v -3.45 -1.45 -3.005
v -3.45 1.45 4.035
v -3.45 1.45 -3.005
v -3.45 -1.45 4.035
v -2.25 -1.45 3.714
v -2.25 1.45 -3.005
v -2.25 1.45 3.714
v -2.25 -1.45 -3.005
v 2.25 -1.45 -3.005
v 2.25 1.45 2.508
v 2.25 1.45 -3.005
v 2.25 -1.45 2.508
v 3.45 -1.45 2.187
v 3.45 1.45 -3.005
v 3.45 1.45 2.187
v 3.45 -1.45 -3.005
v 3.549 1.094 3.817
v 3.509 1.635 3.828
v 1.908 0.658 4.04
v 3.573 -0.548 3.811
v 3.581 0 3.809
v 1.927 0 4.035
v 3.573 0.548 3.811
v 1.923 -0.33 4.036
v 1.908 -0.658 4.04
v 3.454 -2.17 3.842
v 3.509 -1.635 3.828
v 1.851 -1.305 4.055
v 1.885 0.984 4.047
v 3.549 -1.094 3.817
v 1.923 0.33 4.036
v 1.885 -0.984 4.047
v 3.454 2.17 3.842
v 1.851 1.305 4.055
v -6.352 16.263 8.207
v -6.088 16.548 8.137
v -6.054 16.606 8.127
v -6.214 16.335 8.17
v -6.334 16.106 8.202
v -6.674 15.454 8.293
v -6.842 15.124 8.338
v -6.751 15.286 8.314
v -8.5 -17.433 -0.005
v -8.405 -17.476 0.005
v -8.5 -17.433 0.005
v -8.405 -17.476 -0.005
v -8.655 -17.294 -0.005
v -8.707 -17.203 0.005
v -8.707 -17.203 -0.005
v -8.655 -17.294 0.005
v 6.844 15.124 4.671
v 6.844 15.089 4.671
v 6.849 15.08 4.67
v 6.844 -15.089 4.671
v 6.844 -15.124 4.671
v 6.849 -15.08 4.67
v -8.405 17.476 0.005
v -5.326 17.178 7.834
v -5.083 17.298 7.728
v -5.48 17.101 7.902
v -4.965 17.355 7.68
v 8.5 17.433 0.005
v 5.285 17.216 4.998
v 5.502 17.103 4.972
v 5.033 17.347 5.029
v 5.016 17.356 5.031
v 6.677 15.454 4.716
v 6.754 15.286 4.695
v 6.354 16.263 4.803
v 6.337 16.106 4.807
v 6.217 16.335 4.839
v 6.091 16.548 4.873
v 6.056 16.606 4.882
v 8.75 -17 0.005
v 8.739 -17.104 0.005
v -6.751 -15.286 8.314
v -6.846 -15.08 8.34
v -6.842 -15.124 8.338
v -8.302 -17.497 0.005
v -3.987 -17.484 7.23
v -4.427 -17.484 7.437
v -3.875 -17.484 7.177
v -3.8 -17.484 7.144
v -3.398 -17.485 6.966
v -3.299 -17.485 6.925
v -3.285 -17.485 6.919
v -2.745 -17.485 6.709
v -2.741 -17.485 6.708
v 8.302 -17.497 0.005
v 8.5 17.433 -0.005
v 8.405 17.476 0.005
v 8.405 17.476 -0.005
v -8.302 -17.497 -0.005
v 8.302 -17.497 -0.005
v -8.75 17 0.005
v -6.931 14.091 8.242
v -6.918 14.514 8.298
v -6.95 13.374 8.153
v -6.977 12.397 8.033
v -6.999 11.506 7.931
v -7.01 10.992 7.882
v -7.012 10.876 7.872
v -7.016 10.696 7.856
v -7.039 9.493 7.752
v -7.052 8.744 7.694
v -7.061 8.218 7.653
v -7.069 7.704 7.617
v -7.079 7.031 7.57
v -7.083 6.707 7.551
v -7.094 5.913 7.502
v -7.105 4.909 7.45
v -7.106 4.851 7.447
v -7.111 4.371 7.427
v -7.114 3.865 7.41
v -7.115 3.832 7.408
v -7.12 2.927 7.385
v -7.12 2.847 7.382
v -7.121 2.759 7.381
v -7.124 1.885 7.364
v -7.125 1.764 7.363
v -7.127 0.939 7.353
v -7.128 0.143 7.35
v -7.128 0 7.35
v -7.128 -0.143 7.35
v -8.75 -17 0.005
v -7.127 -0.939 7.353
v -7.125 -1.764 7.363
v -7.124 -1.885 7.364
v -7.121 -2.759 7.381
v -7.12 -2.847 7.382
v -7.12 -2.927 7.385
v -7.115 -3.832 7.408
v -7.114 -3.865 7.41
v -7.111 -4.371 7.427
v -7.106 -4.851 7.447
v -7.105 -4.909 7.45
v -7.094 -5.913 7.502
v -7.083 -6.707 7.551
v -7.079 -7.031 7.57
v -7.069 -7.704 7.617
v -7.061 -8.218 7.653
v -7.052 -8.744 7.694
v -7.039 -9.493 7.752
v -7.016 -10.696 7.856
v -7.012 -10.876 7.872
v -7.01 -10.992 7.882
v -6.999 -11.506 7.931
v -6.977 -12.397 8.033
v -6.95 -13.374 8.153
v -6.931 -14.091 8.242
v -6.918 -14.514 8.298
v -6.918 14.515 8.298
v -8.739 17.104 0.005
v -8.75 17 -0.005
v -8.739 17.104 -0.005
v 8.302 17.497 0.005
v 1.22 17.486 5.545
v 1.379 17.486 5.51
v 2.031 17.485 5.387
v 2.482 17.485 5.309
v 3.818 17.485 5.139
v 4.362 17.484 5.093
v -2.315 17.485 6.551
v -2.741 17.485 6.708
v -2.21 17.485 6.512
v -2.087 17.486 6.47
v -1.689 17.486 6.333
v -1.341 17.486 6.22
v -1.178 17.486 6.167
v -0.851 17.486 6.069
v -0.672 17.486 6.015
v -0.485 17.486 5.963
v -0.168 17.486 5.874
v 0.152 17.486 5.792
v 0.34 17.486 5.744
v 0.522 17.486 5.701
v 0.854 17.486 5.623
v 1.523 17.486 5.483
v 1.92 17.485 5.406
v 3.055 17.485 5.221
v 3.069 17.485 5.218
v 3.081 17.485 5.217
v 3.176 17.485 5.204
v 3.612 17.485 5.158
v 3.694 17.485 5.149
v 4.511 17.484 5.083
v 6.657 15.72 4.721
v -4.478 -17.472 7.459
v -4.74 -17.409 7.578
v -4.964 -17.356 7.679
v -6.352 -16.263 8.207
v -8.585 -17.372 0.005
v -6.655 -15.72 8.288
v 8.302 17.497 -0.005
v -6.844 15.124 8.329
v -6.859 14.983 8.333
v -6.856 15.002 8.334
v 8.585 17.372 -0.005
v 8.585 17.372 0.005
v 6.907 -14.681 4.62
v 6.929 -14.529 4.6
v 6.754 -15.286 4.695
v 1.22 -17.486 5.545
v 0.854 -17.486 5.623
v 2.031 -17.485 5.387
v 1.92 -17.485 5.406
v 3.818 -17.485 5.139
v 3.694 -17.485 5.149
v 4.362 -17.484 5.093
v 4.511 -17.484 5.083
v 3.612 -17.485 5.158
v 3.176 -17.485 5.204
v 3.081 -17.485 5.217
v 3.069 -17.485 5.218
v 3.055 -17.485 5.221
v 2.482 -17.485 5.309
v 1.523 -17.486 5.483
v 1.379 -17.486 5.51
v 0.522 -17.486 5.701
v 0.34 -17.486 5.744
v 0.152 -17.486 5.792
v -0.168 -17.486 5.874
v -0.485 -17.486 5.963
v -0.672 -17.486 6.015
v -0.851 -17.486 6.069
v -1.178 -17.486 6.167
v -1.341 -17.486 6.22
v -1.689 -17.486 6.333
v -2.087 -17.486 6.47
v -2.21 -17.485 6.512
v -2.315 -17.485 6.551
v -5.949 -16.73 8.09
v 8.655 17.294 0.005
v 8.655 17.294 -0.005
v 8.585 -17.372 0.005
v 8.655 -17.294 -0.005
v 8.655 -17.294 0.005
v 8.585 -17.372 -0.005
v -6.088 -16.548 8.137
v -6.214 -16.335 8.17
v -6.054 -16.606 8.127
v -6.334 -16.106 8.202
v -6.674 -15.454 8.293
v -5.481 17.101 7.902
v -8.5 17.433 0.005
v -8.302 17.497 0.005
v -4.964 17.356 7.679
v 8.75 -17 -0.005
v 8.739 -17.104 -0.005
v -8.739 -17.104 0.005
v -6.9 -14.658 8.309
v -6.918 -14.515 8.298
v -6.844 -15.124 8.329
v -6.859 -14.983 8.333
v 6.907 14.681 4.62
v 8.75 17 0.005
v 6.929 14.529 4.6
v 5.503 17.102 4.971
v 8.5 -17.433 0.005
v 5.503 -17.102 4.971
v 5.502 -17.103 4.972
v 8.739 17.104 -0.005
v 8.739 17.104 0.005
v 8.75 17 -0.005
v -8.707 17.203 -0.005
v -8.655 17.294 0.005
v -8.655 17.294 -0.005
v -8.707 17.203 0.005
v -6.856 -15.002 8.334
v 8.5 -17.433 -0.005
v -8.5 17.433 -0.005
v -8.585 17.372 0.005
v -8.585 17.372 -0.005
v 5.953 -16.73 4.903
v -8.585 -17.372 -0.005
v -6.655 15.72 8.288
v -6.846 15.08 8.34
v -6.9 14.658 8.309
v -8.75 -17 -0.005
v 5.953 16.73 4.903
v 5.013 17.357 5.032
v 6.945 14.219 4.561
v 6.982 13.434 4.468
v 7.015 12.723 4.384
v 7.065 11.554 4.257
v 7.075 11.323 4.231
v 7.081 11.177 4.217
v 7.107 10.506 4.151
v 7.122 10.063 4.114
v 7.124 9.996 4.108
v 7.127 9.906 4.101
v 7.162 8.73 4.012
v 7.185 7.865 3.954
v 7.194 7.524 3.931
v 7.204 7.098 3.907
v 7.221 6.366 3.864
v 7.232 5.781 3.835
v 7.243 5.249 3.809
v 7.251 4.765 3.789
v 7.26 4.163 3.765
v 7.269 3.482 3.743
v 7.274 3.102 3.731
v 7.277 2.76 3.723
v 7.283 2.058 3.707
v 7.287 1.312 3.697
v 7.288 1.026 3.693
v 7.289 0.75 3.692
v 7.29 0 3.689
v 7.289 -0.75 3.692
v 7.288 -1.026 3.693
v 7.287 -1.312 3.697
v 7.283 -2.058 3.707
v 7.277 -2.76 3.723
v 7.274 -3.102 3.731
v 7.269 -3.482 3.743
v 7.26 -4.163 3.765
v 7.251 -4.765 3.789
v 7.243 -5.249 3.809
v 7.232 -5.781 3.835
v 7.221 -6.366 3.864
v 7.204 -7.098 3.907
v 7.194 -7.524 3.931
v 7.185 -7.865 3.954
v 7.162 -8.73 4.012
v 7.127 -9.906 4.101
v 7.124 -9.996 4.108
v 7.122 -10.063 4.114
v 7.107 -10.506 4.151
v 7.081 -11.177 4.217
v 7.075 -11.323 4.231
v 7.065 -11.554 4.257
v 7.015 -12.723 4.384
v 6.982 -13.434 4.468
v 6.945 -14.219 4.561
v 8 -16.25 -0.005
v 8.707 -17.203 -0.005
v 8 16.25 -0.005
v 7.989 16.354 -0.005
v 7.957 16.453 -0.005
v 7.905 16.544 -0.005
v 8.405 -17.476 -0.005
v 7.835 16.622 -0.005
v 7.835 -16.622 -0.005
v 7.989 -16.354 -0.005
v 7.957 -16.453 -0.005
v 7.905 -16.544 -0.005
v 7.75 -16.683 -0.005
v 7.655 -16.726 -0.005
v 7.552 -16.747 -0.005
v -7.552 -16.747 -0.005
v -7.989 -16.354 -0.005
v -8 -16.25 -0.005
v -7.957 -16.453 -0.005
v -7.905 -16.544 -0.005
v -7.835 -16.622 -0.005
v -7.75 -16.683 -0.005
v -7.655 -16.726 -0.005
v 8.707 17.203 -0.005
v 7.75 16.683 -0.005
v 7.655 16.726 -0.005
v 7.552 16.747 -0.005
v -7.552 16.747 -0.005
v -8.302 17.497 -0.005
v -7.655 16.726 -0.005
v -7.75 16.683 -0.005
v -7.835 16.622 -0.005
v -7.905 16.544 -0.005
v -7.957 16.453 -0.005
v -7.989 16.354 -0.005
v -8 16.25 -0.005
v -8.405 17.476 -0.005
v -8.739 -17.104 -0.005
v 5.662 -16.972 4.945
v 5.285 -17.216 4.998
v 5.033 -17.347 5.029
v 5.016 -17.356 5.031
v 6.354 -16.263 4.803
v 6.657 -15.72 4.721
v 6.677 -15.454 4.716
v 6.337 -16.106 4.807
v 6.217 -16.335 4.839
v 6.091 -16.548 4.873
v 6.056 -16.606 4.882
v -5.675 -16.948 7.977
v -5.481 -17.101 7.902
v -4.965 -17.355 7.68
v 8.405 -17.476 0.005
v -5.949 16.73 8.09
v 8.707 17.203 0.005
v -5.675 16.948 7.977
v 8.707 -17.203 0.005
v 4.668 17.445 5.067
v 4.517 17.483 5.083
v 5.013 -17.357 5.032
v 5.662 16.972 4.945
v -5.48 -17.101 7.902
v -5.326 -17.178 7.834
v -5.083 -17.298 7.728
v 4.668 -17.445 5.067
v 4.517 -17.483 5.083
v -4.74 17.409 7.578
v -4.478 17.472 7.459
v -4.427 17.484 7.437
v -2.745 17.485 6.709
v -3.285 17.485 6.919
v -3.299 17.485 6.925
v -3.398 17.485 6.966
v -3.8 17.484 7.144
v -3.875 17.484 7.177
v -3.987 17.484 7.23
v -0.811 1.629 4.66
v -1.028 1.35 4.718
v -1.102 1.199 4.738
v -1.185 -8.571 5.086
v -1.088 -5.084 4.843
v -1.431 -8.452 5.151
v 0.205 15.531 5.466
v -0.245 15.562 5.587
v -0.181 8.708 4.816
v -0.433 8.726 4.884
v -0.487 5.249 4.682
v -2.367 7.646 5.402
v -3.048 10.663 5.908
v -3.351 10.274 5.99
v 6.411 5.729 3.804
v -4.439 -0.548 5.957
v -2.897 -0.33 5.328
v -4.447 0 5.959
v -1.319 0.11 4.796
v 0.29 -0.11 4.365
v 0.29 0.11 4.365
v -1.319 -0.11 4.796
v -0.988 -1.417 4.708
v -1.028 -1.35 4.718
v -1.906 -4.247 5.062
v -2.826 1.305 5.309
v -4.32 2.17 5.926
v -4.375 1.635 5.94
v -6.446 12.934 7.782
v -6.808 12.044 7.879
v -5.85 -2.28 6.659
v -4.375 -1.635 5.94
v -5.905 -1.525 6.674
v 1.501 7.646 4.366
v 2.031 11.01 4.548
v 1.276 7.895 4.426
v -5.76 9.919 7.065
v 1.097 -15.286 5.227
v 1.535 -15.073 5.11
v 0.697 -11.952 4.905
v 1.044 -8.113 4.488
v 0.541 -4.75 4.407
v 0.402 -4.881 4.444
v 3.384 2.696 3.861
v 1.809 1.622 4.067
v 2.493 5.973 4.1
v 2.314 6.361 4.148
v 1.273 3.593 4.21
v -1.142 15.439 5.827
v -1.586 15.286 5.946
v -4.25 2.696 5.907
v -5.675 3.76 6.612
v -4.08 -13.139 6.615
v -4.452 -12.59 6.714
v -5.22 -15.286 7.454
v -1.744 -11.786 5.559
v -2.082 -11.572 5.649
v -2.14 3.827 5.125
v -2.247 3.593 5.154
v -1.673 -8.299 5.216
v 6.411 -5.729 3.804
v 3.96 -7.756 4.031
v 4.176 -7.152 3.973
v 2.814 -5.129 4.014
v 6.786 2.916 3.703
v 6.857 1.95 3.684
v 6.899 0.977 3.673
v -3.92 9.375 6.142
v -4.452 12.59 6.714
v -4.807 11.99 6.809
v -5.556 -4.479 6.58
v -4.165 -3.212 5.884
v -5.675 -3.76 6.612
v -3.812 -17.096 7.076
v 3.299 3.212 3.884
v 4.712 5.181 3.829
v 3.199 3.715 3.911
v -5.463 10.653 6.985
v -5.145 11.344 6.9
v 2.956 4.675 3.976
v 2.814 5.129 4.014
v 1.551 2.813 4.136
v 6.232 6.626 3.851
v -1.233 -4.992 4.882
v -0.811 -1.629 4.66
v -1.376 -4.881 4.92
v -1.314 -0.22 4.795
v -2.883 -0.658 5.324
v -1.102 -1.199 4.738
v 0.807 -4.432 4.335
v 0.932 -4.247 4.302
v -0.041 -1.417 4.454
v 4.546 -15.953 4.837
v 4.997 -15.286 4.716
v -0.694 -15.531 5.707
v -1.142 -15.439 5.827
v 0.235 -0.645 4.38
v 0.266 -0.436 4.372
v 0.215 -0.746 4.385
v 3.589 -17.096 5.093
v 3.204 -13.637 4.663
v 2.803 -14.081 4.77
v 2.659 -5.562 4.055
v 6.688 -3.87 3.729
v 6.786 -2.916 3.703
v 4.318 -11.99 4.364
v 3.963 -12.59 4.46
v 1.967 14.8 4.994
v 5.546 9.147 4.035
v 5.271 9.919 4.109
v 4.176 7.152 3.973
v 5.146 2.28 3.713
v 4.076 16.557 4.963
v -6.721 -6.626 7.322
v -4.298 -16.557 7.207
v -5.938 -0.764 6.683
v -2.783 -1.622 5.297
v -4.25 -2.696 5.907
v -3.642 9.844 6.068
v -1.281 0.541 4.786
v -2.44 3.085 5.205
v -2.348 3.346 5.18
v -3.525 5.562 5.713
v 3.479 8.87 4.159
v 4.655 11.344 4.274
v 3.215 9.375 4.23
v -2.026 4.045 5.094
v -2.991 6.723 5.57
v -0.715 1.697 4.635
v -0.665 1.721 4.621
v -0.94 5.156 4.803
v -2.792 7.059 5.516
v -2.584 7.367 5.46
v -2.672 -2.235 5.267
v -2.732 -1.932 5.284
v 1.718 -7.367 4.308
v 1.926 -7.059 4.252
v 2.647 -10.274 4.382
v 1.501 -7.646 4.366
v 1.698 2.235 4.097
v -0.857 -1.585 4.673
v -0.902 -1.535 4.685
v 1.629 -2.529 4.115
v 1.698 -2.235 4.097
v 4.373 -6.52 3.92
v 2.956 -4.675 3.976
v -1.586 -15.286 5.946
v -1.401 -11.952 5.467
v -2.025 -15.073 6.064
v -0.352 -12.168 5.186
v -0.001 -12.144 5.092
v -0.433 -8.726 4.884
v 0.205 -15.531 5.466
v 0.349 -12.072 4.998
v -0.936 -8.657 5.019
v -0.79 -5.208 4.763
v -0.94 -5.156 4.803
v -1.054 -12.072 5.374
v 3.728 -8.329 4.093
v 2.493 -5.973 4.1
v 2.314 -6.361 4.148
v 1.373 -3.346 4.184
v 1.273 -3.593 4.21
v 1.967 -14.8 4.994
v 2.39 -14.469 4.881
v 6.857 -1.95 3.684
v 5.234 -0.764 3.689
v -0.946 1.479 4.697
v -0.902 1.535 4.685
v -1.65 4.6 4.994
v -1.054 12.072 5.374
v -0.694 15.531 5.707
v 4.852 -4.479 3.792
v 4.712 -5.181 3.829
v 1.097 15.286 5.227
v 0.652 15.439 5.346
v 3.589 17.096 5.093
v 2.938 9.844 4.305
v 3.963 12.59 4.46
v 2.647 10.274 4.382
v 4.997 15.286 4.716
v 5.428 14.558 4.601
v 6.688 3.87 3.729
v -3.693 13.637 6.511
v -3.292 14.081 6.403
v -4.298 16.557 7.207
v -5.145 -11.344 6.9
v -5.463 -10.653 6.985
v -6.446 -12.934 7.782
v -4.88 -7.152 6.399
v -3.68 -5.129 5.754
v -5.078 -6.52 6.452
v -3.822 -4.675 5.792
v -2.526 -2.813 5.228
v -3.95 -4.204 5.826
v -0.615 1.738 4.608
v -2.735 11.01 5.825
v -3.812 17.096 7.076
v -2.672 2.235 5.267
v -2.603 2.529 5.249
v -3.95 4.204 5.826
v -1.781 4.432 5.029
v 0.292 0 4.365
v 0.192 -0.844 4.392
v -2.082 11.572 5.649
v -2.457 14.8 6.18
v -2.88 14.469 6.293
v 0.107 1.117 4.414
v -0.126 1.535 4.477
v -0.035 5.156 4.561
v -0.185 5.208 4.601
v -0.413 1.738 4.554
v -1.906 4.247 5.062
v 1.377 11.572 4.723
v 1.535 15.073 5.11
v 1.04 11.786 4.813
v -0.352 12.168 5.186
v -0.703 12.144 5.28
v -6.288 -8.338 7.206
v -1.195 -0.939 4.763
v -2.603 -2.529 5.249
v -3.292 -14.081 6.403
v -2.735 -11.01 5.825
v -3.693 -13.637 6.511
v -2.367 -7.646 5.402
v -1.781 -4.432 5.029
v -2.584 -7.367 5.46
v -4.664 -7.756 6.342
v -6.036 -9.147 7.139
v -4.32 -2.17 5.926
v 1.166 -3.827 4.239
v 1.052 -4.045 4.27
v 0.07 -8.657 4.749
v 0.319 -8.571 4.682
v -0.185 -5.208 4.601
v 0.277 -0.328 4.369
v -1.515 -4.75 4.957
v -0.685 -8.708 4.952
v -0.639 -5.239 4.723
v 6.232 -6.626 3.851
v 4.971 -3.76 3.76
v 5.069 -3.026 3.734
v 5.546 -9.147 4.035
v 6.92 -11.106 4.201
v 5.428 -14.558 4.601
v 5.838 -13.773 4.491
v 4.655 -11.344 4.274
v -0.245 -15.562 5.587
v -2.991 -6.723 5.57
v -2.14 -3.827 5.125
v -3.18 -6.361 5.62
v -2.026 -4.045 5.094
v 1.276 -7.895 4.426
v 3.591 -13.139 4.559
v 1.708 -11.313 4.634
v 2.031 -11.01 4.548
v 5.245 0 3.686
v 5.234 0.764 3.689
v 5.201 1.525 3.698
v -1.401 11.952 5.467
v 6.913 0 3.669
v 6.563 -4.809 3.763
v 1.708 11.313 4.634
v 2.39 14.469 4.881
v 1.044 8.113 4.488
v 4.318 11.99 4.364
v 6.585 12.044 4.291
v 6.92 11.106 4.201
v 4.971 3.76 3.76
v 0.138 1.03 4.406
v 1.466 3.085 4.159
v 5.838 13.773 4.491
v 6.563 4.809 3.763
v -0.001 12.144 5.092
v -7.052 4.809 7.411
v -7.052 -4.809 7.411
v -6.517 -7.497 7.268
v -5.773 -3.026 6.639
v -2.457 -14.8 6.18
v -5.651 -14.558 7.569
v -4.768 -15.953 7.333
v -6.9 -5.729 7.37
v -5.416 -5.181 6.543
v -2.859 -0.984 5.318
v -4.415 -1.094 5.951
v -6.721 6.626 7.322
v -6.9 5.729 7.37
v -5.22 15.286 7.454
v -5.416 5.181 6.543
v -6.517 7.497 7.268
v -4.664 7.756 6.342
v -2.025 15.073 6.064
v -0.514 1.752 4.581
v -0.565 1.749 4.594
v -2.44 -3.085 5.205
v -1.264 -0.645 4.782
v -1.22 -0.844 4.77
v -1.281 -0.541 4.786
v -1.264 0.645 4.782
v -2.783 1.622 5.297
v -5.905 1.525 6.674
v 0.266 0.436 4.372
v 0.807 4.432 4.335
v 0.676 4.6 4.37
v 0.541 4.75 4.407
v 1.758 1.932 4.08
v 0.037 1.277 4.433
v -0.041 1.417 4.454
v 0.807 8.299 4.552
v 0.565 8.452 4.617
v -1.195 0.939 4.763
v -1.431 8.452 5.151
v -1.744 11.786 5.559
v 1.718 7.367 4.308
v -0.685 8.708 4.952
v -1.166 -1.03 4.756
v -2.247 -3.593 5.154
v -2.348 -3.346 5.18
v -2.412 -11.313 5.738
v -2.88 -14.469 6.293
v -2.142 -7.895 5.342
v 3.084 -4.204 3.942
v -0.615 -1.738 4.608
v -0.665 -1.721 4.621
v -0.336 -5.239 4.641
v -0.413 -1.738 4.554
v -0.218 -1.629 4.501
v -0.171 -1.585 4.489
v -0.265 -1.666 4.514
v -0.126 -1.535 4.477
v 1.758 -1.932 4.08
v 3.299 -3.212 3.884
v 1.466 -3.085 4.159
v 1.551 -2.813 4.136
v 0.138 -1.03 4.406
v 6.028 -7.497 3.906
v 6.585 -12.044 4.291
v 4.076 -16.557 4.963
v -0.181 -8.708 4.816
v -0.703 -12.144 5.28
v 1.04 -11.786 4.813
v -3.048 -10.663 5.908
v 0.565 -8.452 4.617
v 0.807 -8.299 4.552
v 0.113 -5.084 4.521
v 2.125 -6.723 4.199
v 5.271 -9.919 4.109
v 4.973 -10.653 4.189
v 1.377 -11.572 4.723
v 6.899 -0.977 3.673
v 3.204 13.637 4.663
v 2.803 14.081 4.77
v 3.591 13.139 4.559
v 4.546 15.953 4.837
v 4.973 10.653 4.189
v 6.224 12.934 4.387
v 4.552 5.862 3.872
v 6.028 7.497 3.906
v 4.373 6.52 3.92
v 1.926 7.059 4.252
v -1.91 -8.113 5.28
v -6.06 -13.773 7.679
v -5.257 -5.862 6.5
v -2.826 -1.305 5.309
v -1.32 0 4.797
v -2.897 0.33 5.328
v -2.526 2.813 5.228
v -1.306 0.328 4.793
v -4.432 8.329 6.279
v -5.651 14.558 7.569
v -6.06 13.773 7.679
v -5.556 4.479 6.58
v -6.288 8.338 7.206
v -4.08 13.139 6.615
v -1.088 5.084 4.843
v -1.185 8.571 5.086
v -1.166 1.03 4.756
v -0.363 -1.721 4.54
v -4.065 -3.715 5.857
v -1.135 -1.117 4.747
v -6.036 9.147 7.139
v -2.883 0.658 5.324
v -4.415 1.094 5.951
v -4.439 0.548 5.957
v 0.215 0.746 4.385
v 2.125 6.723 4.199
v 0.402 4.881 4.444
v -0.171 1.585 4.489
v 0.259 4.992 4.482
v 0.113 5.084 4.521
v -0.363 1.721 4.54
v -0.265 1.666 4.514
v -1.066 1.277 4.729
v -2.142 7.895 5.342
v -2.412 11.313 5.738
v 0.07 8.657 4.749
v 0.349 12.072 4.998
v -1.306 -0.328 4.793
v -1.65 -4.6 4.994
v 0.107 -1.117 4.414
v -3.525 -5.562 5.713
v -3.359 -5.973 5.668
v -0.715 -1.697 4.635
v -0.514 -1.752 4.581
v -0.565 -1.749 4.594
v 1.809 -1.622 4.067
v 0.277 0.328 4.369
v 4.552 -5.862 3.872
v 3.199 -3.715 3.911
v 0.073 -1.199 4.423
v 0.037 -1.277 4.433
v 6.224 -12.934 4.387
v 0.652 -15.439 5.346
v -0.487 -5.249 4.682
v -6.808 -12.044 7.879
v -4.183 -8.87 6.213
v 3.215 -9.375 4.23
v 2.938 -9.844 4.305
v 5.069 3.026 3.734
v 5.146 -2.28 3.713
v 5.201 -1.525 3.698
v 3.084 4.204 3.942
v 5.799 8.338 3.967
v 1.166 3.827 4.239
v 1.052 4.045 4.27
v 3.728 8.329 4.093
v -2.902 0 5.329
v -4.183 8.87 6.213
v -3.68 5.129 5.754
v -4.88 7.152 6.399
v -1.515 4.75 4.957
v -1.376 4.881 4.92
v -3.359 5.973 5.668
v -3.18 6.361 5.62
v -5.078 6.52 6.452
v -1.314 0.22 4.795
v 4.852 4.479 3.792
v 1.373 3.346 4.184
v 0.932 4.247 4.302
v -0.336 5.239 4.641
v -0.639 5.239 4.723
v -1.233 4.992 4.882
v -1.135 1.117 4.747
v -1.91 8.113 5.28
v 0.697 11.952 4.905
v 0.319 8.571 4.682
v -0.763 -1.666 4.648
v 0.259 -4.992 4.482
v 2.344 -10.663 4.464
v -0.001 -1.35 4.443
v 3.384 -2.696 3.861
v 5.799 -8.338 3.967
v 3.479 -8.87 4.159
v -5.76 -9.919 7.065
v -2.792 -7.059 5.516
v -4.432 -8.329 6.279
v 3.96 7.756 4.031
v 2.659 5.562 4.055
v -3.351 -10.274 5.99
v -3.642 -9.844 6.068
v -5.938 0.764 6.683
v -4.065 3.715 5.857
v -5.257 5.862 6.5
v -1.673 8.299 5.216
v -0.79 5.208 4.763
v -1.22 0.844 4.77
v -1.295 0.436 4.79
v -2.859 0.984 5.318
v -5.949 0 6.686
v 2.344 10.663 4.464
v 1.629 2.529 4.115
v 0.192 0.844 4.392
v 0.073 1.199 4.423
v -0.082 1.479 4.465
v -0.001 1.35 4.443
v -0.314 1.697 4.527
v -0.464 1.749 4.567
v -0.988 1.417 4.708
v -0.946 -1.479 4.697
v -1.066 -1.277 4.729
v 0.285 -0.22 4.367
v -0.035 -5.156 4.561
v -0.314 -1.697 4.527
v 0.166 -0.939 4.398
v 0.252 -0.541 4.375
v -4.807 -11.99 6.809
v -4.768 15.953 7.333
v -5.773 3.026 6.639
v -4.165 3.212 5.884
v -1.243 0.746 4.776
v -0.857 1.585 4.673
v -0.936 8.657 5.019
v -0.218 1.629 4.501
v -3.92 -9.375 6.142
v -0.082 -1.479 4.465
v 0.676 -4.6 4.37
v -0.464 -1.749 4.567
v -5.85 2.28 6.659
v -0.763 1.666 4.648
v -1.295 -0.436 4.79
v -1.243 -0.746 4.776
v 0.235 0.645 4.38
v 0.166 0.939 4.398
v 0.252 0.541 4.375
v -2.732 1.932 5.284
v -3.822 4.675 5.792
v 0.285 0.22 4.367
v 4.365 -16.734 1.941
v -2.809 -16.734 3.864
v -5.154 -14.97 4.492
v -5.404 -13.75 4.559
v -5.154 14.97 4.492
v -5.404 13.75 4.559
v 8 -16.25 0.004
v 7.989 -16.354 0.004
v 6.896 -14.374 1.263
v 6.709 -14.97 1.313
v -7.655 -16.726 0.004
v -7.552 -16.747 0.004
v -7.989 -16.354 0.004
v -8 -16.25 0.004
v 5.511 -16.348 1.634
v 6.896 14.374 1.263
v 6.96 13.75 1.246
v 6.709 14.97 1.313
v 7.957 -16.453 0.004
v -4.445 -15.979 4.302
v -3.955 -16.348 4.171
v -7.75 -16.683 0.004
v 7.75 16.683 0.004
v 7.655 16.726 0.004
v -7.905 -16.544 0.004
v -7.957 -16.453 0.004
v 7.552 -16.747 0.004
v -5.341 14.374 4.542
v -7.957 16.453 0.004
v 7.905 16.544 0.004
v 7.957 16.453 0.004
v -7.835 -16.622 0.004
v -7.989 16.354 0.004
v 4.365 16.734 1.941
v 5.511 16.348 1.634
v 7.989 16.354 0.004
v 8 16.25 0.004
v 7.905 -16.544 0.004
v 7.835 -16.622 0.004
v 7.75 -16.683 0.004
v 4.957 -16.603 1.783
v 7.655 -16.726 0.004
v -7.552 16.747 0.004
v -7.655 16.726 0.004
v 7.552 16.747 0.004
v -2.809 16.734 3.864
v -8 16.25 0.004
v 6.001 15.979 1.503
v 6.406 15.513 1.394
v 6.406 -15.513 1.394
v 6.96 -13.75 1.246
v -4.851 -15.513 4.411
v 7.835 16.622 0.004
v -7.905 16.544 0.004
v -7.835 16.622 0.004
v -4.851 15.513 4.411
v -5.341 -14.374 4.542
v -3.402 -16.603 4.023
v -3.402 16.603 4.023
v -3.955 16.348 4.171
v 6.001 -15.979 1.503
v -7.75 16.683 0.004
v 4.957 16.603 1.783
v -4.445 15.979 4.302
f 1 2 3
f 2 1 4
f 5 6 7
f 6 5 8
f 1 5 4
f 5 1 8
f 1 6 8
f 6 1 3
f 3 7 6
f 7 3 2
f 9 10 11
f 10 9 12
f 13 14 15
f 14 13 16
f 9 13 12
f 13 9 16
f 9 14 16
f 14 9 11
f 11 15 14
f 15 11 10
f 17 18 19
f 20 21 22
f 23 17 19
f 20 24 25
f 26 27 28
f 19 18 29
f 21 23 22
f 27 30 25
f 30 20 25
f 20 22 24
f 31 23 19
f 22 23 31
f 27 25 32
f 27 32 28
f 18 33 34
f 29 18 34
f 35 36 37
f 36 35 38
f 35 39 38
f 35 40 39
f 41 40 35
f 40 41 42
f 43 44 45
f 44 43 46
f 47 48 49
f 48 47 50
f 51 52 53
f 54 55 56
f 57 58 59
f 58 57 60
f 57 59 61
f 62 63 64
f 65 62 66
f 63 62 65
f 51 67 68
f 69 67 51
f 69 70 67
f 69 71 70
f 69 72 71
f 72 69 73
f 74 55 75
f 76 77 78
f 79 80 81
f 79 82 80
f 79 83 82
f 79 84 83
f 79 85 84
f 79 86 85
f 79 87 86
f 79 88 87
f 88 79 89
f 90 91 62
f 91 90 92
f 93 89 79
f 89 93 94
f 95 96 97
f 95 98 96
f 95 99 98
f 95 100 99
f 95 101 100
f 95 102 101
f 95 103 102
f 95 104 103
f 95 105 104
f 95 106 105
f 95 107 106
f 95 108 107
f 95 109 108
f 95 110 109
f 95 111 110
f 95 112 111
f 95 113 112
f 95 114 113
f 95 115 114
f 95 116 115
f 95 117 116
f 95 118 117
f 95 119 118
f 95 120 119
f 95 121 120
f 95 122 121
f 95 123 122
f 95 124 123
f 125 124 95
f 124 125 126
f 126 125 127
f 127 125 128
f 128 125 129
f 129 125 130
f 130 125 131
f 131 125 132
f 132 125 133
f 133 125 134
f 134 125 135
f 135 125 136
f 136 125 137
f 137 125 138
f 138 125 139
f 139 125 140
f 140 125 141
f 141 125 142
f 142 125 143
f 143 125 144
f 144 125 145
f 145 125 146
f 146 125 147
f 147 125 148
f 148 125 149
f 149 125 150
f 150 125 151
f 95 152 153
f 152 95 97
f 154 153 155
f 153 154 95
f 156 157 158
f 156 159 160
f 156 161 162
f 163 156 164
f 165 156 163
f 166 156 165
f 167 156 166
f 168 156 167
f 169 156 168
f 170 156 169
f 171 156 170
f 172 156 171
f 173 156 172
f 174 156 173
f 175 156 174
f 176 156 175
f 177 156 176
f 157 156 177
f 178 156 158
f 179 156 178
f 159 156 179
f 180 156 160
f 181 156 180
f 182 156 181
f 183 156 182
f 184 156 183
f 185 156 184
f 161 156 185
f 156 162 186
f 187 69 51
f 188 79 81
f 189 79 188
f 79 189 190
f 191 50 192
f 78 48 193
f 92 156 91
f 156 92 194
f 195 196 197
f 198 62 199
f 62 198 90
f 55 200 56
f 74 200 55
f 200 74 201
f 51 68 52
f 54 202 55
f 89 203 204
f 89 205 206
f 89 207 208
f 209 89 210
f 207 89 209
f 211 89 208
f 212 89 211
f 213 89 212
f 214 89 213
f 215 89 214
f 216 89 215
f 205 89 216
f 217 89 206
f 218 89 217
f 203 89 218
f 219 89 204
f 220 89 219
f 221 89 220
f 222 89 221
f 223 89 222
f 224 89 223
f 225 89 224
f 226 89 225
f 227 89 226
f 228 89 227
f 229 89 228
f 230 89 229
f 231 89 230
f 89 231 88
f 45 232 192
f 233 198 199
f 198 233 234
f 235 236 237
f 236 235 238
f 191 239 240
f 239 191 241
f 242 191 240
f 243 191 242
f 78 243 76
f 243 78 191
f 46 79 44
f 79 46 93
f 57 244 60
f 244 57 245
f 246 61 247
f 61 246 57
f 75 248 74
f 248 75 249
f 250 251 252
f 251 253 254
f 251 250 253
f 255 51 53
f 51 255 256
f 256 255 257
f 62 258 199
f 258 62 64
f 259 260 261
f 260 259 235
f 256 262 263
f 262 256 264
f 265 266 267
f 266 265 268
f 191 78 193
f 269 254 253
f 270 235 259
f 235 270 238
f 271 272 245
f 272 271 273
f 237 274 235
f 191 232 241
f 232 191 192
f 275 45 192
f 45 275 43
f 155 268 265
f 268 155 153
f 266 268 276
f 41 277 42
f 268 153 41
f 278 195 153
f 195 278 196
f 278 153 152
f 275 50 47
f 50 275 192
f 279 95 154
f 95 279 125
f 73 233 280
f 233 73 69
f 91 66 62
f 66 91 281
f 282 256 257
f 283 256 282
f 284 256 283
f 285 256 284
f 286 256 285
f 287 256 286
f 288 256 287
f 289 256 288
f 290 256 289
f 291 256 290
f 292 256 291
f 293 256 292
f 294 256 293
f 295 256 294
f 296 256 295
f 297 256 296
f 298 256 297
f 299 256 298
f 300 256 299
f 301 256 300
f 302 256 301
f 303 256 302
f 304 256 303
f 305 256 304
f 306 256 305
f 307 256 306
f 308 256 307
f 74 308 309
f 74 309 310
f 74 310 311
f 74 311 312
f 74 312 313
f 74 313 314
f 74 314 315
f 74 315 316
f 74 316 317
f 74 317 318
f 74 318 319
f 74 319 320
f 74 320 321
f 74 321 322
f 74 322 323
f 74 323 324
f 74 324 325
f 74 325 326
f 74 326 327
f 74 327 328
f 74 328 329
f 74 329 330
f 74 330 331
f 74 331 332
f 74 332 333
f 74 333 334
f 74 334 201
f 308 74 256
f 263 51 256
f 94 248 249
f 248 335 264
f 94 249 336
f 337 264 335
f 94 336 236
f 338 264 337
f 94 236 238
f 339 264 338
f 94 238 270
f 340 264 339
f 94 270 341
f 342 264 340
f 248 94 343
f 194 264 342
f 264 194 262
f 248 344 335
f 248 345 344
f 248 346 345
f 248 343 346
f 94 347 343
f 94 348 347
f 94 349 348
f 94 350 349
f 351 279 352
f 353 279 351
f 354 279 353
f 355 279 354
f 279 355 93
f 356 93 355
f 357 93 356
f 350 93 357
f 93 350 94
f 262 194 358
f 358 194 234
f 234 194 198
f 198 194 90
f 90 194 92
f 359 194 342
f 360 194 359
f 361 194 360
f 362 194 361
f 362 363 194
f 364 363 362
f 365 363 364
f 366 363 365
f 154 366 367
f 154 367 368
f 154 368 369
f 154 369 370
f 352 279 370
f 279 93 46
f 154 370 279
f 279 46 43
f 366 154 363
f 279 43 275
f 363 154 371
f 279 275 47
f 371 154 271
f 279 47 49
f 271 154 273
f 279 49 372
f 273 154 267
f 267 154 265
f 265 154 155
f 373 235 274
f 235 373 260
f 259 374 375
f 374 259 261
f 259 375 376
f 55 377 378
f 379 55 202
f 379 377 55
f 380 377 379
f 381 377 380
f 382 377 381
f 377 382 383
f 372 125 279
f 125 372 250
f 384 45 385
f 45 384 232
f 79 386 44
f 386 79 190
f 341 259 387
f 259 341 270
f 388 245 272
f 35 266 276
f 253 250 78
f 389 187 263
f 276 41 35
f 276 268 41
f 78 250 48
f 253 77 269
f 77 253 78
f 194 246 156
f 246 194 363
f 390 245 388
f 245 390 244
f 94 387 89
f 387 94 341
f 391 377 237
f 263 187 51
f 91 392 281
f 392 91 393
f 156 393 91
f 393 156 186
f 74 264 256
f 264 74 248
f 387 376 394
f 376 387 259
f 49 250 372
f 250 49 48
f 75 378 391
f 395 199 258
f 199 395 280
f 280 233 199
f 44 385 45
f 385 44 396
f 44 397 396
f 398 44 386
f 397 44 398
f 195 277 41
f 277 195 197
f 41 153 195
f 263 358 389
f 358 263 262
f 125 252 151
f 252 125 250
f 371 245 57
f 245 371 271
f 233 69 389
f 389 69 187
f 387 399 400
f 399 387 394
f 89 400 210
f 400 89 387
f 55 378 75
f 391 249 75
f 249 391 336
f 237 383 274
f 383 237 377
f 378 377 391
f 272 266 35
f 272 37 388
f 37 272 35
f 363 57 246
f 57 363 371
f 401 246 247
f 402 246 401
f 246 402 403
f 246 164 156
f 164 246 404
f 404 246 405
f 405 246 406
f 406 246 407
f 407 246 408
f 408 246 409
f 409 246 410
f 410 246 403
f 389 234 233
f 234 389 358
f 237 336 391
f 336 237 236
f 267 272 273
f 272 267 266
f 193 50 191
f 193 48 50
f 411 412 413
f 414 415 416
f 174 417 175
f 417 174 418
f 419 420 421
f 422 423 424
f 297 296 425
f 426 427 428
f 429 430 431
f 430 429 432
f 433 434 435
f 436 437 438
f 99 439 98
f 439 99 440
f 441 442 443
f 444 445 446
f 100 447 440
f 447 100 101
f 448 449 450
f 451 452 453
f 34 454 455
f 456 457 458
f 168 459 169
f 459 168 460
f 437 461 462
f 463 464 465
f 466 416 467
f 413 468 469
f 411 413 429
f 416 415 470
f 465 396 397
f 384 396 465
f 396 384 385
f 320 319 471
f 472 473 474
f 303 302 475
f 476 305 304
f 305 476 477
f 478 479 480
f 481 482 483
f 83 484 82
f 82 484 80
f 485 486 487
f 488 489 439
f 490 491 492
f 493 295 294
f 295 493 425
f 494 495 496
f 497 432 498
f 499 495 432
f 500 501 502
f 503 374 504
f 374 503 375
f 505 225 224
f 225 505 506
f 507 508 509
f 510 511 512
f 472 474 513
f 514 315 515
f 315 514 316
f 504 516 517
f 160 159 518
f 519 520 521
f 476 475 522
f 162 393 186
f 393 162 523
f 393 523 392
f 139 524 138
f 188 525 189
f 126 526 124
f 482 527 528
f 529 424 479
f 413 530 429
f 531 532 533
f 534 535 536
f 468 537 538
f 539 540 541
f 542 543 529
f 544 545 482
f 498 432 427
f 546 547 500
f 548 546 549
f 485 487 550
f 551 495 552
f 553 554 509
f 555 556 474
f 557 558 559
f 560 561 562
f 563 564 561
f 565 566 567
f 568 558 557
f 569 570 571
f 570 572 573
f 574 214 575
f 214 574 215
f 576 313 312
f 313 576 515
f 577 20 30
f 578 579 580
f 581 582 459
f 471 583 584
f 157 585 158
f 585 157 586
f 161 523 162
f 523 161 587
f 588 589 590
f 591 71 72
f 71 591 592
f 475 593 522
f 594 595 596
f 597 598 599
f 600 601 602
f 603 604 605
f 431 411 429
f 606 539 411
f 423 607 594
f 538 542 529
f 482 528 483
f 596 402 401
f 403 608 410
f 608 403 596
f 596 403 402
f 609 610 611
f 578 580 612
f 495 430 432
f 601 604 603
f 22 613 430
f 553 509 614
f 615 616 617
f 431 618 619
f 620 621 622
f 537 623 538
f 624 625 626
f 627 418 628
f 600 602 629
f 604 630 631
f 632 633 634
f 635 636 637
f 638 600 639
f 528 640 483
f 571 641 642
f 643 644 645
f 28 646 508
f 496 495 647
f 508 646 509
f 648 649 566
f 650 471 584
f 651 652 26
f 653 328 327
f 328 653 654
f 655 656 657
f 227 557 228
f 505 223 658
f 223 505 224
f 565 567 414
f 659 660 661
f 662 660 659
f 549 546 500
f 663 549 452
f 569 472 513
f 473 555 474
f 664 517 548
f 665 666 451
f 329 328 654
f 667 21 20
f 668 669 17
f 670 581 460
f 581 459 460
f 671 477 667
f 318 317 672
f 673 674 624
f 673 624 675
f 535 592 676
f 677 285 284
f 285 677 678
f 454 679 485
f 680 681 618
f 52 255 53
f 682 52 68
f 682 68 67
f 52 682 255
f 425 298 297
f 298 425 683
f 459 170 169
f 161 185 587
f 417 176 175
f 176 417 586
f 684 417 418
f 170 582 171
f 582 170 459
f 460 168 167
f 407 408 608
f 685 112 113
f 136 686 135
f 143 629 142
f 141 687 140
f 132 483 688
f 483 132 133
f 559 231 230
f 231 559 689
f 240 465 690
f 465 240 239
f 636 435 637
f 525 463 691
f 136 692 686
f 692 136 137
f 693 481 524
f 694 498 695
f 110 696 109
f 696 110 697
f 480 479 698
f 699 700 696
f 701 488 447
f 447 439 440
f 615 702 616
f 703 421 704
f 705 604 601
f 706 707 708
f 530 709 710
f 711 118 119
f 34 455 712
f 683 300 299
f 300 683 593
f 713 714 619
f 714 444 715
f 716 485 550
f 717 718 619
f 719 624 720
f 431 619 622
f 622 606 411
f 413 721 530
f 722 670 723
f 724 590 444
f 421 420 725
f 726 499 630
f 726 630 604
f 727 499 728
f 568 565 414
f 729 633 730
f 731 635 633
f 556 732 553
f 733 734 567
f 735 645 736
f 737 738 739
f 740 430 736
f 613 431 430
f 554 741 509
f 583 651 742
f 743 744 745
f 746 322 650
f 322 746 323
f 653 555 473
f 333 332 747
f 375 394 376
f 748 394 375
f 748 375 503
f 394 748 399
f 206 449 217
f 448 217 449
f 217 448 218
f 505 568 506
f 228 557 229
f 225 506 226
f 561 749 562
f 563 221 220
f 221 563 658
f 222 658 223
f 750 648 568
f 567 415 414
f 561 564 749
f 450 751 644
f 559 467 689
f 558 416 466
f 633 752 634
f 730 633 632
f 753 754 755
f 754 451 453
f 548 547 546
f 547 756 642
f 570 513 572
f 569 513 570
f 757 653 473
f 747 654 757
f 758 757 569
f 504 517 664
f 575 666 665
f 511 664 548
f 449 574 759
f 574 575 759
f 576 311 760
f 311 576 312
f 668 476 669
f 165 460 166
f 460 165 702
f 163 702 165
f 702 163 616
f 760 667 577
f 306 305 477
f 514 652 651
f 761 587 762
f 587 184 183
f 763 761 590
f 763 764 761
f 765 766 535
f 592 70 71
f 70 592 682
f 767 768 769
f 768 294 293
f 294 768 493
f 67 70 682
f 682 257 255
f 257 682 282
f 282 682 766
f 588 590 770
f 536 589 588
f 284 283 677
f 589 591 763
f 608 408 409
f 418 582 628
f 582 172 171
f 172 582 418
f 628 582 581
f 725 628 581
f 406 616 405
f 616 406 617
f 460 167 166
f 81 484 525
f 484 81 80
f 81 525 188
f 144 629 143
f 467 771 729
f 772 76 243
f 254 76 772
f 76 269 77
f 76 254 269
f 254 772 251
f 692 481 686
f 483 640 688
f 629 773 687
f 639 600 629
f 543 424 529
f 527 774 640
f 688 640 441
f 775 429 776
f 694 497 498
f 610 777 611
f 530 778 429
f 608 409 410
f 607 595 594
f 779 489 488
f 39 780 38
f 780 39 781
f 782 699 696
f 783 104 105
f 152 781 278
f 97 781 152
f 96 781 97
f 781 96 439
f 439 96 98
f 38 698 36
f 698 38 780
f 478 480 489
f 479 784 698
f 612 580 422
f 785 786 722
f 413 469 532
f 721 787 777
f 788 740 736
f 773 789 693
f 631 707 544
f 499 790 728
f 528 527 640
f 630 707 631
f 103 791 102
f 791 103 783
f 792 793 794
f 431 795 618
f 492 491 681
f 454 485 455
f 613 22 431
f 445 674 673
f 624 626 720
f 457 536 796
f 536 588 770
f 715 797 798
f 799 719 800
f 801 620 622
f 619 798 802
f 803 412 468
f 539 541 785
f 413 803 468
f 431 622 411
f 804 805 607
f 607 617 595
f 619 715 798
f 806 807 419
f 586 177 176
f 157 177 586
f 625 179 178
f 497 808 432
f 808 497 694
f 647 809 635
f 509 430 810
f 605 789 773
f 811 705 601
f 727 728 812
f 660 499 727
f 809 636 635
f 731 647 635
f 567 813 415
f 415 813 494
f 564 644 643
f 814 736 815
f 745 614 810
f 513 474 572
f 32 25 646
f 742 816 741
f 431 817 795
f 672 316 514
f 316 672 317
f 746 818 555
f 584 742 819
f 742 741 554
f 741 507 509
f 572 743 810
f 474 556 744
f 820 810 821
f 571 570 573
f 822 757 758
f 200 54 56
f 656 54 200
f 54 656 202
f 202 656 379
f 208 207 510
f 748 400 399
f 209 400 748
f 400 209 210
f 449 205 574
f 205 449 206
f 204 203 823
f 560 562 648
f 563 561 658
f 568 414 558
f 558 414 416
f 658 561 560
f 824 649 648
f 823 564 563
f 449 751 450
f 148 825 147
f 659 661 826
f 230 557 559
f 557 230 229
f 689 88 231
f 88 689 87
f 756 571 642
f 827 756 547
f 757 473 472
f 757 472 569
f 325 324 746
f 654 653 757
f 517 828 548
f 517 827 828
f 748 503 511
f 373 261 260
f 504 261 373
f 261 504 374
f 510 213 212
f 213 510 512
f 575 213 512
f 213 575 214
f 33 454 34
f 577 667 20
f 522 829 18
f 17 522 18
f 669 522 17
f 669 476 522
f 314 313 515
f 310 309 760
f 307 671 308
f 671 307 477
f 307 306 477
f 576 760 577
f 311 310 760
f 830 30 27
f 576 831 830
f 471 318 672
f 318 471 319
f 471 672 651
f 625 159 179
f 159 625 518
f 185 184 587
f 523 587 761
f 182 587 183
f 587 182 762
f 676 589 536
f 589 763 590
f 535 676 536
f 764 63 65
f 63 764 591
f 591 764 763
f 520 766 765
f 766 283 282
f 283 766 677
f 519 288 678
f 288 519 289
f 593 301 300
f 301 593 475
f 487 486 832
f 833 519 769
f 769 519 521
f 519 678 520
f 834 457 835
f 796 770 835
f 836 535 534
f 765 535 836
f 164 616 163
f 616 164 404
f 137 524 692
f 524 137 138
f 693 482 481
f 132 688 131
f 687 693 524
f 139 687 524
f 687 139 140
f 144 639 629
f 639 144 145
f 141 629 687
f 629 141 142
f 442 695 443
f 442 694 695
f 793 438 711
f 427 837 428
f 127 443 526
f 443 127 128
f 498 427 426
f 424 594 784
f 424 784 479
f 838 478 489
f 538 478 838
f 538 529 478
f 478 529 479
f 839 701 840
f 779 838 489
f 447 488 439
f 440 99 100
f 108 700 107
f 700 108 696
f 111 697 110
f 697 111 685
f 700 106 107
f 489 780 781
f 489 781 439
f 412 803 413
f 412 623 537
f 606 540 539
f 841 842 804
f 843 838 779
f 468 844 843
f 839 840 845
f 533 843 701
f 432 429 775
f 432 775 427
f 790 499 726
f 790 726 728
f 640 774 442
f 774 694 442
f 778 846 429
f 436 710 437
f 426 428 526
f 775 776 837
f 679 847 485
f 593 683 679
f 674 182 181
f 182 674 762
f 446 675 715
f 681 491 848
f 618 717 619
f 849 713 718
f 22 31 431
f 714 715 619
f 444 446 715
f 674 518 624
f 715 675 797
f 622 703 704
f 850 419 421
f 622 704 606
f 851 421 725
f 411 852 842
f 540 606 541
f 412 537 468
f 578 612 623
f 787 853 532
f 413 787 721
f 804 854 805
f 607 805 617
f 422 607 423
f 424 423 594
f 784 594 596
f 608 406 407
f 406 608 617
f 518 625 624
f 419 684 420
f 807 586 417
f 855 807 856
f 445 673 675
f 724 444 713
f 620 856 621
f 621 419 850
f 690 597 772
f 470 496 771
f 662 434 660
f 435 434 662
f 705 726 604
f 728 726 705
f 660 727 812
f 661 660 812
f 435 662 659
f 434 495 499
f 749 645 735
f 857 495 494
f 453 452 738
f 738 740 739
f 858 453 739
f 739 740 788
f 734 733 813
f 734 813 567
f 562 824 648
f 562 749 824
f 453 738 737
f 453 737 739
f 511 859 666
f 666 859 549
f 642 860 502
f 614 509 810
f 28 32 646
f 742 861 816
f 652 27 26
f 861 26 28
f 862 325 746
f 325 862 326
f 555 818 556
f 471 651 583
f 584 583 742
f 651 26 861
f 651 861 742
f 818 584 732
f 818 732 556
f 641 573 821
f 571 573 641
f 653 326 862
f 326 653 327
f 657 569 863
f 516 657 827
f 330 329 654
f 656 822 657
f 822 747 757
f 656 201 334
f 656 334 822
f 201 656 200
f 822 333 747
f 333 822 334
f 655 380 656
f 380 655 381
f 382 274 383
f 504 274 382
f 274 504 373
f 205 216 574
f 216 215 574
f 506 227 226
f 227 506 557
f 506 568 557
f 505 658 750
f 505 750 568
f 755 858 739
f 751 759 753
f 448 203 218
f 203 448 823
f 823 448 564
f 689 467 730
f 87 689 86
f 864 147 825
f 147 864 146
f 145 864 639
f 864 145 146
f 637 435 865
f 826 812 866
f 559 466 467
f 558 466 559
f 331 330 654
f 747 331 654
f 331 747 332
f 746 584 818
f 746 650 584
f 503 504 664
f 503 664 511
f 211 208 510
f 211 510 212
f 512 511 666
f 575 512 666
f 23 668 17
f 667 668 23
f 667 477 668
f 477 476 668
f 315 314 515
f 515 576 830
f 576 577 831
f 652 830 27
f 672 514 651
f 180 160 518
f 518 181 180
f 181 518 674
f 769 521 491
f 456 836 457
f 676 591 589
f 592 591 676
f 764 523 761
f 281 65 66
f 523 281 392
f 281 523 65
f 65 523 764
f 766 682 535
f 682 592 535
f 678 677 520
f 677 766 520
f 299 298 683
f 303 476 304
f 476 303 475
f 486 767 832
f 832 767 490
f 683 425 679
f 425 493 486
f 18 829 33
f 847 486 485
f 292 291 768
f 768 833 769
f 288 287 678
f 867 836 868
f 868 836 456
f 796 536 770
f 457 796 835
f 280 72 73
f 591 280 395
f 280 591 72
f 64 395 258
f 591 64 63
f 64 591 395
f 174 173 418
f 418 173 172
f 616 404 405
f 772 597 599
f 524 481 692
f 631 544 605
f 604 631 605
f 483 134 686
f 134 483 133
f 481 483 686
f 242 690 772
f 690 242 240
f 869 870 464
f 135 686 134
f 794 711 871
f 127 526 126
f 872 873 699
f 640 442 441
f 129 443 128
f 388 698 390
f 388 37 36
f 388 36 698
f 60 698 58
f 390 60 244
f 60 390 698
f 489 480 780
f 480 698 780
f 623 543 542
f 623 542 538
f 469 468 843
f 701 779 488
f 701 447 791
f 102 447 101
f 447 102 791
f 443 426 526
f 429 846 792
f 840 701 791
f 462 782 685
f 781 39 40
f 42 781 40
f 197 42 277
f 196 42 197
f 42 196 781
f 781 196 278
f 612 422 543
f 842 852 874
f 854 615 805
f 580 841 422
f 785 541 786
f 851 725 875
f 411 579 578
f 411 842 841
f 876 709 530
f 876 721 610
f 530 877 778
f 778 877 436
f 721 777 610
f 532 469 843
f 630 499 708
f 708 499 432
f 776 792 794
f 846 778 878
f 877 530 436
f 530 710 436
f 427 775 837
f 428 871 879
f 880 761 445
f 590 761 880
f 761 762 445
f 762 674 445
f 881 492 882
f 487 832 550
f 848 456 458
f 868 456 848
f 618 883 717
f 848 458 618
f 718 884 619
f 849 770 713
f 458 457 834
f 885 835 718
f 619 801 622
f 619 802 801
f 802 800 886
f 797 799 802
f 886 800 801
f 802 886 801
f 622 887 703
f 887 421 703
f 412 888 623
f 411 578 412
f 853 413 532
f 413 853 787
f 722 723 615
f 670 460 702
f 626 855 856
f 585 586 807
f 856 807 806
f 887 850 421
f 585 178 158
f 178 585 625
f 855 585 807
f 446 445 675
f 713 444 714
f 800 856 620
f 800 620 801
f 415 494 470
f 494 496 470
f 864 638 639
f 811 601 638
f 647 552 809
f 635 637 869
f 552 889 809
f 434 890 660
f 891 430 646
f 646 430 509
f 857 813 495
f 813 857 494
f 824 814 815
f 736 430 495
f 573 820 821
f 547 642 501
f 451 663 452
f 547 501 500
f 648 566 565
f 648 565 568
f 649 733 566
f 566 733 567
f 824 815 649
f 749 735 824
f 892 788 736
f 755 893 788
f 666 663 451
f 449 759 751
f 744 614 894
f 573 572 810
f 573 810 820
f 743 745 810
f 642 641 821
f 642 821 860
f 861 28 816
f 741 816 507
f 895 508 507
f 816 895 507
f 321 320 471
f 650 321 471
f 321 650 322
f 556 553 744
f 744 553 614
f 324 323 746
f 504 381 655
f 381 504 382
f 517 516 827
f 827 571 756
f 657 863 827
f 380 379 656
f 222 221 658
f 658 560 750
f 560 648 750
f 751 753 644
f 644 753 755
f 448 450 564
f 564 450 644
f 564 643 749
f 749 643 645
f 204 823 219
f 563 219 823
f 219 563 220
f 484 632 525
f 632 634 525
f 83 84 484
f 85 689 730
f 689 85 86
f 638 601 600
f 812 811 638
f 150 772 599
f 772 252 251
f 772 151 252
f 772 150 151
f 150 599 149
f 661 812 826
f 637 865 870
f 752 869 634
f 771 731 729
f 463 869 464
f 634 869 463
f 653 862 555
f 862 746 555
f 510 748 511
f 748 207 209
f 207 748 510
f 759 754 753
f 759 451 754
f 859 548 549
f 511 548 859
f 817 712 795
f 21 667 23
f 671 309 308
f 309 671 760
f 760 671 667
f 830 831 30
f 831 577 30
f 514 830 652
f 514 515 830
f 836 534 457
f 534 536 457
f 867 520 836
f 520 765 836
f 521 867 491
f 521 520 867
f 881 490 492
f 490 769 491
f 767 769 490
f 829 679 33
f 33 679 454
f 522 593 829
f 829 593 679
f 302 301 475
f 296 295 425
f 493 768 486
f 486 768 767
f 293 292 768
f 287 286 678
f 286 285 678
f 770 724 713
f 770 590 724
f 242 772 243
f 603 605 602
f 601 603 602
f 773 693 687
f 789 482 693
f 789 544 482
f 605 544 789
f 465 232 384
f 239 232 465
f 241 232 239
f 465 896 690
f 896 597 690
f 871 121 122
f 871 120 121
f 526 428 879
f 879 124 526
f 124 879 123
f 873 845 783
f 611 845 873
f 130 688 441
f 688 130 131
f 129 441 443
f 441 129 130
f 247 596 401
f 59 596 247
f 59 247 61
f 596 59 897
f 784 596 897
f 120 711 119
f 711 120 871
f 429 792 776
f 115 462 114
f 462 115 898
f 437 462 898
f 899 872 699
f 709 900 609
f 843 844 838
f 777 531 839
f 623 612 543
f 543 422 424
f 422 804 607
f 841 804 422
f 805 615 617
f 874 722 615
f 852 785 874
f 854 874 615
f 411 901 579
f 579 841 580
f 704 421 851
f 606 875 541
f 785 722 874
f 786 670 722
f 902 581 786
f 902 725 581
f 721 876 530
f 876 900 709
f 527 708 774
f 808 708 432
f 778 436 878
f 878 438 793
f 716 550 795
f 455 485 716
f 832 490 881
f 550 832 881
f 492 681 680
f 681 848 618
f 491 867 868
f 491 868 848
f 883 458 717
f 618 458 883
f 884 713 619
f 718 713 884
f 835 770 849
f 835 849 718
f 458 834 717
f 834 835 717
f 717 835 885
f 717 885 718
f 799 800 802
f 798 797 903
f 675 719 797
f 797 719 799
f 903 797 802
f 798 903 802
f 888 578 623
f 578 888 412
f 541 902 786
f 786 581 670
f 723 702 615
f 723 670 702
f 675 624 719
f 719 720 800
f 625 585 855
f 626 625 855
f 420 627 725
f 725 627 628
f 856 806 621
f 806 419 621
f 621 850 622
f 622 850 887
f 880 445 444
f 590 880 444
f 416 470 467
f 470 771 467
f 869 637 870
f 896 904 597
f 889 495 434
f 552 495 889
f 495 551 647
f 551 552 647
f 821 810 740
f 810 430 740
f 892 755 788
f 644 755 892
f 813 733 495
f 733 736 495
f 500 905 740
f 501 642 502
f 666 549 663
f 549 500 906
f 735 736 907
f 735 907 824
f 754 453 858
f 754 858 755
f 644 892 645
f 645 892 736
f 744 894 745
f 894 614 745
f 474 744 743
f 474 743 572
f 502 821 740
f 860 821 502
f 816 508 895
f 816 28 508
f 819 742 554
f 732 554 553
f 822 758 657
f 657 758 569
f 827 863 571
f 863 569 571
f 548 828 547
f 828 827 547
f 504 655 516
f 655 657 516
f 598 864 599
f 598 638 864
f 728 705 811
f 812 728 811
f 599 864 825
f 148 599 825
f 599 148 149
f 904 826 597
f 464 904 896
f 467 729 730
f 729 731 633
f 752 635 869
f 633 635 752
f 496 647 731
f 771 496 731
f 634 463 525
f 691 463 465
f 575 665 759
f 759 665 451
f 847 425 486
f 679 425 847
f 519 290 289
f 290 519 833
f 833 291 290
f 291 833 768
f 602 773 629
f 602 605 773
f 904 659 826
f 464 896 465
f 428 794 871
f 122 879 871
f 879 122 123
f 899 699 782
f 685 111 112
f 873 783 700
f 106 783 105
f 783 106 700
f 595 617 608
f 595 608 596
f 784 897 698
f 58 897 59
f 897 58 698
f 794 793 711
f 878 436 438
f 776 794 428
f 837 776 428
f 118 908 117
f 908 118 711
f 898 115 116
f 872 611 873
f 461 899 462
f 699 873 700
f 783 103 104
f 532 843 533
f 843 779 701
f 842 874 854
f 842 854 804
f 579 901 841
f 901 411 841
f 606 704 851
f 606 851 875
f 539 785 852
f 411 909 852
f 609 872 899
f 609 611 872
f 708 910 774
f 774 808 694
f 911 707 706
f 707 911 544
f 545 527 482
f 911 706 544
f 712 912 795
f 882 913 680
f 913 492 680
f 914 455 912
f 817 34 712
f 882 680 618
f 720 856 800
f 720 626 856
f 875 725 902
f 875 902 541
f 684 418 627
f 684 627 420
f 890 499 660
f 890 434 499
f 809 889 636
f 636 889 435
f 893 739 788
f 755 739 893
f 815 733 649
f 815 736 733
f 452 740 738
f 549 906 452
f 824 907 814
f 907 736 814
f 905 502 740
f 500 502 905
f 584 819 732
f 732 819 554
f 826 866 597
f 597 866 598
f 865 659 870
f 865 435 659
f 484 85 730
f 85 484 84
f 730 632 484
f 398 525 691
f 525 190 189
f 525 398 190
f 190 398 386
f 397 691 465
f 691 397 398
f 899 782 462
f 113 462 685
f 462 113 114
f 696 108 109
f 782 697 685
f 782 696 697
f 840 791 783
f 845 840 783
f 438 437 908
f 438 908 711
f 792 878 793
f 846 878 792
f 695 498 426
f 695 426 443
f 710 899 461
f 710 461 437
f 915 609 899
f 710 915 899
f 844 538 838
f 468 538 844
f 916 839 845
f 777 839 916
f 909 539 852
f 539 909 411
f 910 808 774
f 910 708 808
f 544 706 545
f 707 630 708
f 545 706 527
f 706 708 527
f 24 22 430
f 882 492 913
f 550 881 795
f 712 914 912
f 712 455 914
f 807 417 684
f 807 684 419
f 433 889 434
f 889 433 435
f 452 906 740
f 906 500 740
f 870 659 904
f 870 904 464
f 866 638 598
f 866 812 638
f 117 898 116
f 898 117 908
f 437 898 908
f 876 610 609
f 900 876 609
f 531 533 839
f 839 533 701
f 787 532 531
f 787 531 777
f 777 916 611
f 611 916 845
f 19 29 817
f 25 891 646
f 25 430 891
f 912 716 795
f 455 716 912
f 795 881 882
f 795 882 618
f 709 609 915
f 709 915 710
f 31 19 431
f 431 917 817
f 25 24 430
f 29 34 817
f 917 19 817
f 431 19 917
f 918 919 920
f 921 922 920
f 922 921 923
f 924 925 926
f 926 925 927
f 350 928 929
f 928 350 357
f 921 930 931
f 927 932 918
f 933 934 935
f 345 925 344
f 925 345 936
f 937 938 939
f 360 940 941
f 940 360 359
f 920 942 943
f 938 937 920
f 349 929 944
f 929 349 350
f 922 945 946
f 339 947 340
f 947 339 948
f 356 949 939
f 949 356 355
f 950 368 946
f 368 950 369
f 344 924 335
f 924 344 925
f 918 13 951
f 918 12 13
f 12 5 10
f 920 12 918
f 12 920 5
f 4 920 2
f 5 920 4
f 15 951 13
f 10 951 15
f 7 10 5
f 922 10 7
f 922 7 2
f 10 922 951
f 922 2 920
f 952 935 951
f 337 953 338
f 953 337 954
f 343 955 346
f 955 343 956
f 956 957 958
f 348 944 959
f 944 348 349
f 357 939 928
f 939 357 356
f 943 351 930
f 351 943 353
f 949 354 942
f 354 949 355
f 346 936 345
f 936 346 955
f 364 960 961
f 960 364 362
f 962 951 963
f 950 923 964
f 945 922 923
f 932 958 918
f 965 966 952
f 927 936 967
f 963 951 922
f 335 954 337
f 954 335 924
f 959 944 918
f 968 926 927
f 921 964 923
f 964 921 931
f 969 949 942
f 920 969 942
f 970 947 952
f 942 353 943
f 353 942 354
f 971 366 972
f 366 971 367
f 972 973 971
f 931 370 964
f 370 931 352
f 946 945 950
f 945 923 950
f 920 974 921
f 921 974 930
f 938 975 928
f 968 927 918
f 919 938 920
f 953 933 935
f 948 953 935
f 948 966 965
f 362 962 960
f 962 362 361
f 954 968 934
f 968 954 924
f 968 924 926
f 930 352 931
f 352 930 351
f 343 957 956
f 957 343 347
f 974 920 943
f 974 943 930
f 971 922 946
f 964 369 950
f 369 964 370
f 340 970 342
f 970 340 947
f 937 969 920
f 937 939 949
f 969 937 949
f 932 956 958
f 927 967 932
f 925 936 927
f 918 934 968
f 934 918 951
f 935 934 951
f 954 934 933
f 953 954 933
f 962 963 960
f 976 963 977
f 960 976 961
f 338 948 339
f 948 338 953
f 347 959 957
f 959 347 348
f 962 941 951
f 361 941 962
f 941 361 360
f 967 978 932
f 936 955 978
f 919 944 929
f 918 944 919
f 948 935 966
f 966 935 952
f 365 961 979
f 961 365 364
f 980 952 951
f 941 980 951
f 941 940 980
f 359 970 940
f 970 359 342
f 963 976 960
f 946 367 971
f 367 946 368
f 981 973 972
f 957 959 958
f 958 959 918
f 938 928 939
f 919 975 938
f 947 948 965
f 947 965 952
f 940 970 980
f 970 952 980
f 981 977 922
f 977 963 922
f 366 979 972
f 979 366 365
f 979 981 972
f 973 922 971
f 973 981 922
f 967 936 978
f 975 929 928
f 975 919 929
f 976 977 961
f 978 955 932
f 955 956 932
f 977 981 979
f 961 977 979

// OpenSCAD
union () {
  difference () {
    translate ([-2.85, 0, 0]) {
      union () {
        color ([0, 1, 0, ]) {
          hull () {
            translate ([0, 0, 5]) {
              cube ([1.2, 2.9, 0.01], center=true);
            }
            translate ([0, 0, -3]) {
              translate ([0, 0, 0]) {
                cube ([1.2, 2.9, 0.01], center=true);
              }
            }
          }
        }
        color ([0, 1, 0, ]) {
          hull () {
            translate ([5.7, 0, 5]) {
              cube ([1.2, 2.9, 0.01], center=true);
            }
            translate ([0, 0, -3]) {
              translate ([5.7, 0, 0]) {
                cube ([1.2, 2.9, 0.01], center=true);
              }
            }
          }
        }
      }
    }
    translate ([0, 0, 6.5]) {
      rotate ([0.0,14.999999999999998,0.0]) {
        translate ([0, 0, 24.56125000000001]) {
          scale ([1, 2.1, 1]) {
            sphere ($fn=100, r=26.56125000000001);
          }
        }
      }
    }
  }
  difference () {
    difference () {
      hull () {
        translate ([0, 0, 6.5]) {
          rotate ([0.0,14.999999999999998,0.0]) {
            minkowski () {
              cube ([8.3, 29.0, 0.0099], center=true);
              cylinder ($fs=0.1, h=1.0E-4, r=3, center=true);
            }
          }
        }
        minkowski () {
          cube ([16.5, 34.0, 0.0099], center=true);
          cylinder ($fs=0.1, h=1.0E-4, r=0.5, center=true);
        }
      }
      translate ([0, 0, 6.5]) {
        rotate ([0.0,14.999999999999998,0.0]) {
          translate ([0, 0, 24.56125000000001]) {
            scale ([1, 2.1, 1]) {
              sphere ($fn=100, r=26.56125000000001);
            }
          }
        }
      }
    }
    #union () {
      hull () {
        rotate ([0.0,14.999999999999998,0.0]) {
          translate ([0, 0, 3.0]) {
            minkowski () {
              cube ([6.800000000000001, 27.5, 0.0099], center=true);
              cylinder ($fs=0.1, h=1.0E-4, r=3, center=true);
            }
          }
        }
        translate ([0, 0, -0.001]) {
          minkowski () {
            cube ([15.0, 32.5, 0.0099], center=true);
            cylinder ($fs=0.1, h=1.0E-4, r=0.5, center=true);
          }
        }
      }
    }
  }
}
